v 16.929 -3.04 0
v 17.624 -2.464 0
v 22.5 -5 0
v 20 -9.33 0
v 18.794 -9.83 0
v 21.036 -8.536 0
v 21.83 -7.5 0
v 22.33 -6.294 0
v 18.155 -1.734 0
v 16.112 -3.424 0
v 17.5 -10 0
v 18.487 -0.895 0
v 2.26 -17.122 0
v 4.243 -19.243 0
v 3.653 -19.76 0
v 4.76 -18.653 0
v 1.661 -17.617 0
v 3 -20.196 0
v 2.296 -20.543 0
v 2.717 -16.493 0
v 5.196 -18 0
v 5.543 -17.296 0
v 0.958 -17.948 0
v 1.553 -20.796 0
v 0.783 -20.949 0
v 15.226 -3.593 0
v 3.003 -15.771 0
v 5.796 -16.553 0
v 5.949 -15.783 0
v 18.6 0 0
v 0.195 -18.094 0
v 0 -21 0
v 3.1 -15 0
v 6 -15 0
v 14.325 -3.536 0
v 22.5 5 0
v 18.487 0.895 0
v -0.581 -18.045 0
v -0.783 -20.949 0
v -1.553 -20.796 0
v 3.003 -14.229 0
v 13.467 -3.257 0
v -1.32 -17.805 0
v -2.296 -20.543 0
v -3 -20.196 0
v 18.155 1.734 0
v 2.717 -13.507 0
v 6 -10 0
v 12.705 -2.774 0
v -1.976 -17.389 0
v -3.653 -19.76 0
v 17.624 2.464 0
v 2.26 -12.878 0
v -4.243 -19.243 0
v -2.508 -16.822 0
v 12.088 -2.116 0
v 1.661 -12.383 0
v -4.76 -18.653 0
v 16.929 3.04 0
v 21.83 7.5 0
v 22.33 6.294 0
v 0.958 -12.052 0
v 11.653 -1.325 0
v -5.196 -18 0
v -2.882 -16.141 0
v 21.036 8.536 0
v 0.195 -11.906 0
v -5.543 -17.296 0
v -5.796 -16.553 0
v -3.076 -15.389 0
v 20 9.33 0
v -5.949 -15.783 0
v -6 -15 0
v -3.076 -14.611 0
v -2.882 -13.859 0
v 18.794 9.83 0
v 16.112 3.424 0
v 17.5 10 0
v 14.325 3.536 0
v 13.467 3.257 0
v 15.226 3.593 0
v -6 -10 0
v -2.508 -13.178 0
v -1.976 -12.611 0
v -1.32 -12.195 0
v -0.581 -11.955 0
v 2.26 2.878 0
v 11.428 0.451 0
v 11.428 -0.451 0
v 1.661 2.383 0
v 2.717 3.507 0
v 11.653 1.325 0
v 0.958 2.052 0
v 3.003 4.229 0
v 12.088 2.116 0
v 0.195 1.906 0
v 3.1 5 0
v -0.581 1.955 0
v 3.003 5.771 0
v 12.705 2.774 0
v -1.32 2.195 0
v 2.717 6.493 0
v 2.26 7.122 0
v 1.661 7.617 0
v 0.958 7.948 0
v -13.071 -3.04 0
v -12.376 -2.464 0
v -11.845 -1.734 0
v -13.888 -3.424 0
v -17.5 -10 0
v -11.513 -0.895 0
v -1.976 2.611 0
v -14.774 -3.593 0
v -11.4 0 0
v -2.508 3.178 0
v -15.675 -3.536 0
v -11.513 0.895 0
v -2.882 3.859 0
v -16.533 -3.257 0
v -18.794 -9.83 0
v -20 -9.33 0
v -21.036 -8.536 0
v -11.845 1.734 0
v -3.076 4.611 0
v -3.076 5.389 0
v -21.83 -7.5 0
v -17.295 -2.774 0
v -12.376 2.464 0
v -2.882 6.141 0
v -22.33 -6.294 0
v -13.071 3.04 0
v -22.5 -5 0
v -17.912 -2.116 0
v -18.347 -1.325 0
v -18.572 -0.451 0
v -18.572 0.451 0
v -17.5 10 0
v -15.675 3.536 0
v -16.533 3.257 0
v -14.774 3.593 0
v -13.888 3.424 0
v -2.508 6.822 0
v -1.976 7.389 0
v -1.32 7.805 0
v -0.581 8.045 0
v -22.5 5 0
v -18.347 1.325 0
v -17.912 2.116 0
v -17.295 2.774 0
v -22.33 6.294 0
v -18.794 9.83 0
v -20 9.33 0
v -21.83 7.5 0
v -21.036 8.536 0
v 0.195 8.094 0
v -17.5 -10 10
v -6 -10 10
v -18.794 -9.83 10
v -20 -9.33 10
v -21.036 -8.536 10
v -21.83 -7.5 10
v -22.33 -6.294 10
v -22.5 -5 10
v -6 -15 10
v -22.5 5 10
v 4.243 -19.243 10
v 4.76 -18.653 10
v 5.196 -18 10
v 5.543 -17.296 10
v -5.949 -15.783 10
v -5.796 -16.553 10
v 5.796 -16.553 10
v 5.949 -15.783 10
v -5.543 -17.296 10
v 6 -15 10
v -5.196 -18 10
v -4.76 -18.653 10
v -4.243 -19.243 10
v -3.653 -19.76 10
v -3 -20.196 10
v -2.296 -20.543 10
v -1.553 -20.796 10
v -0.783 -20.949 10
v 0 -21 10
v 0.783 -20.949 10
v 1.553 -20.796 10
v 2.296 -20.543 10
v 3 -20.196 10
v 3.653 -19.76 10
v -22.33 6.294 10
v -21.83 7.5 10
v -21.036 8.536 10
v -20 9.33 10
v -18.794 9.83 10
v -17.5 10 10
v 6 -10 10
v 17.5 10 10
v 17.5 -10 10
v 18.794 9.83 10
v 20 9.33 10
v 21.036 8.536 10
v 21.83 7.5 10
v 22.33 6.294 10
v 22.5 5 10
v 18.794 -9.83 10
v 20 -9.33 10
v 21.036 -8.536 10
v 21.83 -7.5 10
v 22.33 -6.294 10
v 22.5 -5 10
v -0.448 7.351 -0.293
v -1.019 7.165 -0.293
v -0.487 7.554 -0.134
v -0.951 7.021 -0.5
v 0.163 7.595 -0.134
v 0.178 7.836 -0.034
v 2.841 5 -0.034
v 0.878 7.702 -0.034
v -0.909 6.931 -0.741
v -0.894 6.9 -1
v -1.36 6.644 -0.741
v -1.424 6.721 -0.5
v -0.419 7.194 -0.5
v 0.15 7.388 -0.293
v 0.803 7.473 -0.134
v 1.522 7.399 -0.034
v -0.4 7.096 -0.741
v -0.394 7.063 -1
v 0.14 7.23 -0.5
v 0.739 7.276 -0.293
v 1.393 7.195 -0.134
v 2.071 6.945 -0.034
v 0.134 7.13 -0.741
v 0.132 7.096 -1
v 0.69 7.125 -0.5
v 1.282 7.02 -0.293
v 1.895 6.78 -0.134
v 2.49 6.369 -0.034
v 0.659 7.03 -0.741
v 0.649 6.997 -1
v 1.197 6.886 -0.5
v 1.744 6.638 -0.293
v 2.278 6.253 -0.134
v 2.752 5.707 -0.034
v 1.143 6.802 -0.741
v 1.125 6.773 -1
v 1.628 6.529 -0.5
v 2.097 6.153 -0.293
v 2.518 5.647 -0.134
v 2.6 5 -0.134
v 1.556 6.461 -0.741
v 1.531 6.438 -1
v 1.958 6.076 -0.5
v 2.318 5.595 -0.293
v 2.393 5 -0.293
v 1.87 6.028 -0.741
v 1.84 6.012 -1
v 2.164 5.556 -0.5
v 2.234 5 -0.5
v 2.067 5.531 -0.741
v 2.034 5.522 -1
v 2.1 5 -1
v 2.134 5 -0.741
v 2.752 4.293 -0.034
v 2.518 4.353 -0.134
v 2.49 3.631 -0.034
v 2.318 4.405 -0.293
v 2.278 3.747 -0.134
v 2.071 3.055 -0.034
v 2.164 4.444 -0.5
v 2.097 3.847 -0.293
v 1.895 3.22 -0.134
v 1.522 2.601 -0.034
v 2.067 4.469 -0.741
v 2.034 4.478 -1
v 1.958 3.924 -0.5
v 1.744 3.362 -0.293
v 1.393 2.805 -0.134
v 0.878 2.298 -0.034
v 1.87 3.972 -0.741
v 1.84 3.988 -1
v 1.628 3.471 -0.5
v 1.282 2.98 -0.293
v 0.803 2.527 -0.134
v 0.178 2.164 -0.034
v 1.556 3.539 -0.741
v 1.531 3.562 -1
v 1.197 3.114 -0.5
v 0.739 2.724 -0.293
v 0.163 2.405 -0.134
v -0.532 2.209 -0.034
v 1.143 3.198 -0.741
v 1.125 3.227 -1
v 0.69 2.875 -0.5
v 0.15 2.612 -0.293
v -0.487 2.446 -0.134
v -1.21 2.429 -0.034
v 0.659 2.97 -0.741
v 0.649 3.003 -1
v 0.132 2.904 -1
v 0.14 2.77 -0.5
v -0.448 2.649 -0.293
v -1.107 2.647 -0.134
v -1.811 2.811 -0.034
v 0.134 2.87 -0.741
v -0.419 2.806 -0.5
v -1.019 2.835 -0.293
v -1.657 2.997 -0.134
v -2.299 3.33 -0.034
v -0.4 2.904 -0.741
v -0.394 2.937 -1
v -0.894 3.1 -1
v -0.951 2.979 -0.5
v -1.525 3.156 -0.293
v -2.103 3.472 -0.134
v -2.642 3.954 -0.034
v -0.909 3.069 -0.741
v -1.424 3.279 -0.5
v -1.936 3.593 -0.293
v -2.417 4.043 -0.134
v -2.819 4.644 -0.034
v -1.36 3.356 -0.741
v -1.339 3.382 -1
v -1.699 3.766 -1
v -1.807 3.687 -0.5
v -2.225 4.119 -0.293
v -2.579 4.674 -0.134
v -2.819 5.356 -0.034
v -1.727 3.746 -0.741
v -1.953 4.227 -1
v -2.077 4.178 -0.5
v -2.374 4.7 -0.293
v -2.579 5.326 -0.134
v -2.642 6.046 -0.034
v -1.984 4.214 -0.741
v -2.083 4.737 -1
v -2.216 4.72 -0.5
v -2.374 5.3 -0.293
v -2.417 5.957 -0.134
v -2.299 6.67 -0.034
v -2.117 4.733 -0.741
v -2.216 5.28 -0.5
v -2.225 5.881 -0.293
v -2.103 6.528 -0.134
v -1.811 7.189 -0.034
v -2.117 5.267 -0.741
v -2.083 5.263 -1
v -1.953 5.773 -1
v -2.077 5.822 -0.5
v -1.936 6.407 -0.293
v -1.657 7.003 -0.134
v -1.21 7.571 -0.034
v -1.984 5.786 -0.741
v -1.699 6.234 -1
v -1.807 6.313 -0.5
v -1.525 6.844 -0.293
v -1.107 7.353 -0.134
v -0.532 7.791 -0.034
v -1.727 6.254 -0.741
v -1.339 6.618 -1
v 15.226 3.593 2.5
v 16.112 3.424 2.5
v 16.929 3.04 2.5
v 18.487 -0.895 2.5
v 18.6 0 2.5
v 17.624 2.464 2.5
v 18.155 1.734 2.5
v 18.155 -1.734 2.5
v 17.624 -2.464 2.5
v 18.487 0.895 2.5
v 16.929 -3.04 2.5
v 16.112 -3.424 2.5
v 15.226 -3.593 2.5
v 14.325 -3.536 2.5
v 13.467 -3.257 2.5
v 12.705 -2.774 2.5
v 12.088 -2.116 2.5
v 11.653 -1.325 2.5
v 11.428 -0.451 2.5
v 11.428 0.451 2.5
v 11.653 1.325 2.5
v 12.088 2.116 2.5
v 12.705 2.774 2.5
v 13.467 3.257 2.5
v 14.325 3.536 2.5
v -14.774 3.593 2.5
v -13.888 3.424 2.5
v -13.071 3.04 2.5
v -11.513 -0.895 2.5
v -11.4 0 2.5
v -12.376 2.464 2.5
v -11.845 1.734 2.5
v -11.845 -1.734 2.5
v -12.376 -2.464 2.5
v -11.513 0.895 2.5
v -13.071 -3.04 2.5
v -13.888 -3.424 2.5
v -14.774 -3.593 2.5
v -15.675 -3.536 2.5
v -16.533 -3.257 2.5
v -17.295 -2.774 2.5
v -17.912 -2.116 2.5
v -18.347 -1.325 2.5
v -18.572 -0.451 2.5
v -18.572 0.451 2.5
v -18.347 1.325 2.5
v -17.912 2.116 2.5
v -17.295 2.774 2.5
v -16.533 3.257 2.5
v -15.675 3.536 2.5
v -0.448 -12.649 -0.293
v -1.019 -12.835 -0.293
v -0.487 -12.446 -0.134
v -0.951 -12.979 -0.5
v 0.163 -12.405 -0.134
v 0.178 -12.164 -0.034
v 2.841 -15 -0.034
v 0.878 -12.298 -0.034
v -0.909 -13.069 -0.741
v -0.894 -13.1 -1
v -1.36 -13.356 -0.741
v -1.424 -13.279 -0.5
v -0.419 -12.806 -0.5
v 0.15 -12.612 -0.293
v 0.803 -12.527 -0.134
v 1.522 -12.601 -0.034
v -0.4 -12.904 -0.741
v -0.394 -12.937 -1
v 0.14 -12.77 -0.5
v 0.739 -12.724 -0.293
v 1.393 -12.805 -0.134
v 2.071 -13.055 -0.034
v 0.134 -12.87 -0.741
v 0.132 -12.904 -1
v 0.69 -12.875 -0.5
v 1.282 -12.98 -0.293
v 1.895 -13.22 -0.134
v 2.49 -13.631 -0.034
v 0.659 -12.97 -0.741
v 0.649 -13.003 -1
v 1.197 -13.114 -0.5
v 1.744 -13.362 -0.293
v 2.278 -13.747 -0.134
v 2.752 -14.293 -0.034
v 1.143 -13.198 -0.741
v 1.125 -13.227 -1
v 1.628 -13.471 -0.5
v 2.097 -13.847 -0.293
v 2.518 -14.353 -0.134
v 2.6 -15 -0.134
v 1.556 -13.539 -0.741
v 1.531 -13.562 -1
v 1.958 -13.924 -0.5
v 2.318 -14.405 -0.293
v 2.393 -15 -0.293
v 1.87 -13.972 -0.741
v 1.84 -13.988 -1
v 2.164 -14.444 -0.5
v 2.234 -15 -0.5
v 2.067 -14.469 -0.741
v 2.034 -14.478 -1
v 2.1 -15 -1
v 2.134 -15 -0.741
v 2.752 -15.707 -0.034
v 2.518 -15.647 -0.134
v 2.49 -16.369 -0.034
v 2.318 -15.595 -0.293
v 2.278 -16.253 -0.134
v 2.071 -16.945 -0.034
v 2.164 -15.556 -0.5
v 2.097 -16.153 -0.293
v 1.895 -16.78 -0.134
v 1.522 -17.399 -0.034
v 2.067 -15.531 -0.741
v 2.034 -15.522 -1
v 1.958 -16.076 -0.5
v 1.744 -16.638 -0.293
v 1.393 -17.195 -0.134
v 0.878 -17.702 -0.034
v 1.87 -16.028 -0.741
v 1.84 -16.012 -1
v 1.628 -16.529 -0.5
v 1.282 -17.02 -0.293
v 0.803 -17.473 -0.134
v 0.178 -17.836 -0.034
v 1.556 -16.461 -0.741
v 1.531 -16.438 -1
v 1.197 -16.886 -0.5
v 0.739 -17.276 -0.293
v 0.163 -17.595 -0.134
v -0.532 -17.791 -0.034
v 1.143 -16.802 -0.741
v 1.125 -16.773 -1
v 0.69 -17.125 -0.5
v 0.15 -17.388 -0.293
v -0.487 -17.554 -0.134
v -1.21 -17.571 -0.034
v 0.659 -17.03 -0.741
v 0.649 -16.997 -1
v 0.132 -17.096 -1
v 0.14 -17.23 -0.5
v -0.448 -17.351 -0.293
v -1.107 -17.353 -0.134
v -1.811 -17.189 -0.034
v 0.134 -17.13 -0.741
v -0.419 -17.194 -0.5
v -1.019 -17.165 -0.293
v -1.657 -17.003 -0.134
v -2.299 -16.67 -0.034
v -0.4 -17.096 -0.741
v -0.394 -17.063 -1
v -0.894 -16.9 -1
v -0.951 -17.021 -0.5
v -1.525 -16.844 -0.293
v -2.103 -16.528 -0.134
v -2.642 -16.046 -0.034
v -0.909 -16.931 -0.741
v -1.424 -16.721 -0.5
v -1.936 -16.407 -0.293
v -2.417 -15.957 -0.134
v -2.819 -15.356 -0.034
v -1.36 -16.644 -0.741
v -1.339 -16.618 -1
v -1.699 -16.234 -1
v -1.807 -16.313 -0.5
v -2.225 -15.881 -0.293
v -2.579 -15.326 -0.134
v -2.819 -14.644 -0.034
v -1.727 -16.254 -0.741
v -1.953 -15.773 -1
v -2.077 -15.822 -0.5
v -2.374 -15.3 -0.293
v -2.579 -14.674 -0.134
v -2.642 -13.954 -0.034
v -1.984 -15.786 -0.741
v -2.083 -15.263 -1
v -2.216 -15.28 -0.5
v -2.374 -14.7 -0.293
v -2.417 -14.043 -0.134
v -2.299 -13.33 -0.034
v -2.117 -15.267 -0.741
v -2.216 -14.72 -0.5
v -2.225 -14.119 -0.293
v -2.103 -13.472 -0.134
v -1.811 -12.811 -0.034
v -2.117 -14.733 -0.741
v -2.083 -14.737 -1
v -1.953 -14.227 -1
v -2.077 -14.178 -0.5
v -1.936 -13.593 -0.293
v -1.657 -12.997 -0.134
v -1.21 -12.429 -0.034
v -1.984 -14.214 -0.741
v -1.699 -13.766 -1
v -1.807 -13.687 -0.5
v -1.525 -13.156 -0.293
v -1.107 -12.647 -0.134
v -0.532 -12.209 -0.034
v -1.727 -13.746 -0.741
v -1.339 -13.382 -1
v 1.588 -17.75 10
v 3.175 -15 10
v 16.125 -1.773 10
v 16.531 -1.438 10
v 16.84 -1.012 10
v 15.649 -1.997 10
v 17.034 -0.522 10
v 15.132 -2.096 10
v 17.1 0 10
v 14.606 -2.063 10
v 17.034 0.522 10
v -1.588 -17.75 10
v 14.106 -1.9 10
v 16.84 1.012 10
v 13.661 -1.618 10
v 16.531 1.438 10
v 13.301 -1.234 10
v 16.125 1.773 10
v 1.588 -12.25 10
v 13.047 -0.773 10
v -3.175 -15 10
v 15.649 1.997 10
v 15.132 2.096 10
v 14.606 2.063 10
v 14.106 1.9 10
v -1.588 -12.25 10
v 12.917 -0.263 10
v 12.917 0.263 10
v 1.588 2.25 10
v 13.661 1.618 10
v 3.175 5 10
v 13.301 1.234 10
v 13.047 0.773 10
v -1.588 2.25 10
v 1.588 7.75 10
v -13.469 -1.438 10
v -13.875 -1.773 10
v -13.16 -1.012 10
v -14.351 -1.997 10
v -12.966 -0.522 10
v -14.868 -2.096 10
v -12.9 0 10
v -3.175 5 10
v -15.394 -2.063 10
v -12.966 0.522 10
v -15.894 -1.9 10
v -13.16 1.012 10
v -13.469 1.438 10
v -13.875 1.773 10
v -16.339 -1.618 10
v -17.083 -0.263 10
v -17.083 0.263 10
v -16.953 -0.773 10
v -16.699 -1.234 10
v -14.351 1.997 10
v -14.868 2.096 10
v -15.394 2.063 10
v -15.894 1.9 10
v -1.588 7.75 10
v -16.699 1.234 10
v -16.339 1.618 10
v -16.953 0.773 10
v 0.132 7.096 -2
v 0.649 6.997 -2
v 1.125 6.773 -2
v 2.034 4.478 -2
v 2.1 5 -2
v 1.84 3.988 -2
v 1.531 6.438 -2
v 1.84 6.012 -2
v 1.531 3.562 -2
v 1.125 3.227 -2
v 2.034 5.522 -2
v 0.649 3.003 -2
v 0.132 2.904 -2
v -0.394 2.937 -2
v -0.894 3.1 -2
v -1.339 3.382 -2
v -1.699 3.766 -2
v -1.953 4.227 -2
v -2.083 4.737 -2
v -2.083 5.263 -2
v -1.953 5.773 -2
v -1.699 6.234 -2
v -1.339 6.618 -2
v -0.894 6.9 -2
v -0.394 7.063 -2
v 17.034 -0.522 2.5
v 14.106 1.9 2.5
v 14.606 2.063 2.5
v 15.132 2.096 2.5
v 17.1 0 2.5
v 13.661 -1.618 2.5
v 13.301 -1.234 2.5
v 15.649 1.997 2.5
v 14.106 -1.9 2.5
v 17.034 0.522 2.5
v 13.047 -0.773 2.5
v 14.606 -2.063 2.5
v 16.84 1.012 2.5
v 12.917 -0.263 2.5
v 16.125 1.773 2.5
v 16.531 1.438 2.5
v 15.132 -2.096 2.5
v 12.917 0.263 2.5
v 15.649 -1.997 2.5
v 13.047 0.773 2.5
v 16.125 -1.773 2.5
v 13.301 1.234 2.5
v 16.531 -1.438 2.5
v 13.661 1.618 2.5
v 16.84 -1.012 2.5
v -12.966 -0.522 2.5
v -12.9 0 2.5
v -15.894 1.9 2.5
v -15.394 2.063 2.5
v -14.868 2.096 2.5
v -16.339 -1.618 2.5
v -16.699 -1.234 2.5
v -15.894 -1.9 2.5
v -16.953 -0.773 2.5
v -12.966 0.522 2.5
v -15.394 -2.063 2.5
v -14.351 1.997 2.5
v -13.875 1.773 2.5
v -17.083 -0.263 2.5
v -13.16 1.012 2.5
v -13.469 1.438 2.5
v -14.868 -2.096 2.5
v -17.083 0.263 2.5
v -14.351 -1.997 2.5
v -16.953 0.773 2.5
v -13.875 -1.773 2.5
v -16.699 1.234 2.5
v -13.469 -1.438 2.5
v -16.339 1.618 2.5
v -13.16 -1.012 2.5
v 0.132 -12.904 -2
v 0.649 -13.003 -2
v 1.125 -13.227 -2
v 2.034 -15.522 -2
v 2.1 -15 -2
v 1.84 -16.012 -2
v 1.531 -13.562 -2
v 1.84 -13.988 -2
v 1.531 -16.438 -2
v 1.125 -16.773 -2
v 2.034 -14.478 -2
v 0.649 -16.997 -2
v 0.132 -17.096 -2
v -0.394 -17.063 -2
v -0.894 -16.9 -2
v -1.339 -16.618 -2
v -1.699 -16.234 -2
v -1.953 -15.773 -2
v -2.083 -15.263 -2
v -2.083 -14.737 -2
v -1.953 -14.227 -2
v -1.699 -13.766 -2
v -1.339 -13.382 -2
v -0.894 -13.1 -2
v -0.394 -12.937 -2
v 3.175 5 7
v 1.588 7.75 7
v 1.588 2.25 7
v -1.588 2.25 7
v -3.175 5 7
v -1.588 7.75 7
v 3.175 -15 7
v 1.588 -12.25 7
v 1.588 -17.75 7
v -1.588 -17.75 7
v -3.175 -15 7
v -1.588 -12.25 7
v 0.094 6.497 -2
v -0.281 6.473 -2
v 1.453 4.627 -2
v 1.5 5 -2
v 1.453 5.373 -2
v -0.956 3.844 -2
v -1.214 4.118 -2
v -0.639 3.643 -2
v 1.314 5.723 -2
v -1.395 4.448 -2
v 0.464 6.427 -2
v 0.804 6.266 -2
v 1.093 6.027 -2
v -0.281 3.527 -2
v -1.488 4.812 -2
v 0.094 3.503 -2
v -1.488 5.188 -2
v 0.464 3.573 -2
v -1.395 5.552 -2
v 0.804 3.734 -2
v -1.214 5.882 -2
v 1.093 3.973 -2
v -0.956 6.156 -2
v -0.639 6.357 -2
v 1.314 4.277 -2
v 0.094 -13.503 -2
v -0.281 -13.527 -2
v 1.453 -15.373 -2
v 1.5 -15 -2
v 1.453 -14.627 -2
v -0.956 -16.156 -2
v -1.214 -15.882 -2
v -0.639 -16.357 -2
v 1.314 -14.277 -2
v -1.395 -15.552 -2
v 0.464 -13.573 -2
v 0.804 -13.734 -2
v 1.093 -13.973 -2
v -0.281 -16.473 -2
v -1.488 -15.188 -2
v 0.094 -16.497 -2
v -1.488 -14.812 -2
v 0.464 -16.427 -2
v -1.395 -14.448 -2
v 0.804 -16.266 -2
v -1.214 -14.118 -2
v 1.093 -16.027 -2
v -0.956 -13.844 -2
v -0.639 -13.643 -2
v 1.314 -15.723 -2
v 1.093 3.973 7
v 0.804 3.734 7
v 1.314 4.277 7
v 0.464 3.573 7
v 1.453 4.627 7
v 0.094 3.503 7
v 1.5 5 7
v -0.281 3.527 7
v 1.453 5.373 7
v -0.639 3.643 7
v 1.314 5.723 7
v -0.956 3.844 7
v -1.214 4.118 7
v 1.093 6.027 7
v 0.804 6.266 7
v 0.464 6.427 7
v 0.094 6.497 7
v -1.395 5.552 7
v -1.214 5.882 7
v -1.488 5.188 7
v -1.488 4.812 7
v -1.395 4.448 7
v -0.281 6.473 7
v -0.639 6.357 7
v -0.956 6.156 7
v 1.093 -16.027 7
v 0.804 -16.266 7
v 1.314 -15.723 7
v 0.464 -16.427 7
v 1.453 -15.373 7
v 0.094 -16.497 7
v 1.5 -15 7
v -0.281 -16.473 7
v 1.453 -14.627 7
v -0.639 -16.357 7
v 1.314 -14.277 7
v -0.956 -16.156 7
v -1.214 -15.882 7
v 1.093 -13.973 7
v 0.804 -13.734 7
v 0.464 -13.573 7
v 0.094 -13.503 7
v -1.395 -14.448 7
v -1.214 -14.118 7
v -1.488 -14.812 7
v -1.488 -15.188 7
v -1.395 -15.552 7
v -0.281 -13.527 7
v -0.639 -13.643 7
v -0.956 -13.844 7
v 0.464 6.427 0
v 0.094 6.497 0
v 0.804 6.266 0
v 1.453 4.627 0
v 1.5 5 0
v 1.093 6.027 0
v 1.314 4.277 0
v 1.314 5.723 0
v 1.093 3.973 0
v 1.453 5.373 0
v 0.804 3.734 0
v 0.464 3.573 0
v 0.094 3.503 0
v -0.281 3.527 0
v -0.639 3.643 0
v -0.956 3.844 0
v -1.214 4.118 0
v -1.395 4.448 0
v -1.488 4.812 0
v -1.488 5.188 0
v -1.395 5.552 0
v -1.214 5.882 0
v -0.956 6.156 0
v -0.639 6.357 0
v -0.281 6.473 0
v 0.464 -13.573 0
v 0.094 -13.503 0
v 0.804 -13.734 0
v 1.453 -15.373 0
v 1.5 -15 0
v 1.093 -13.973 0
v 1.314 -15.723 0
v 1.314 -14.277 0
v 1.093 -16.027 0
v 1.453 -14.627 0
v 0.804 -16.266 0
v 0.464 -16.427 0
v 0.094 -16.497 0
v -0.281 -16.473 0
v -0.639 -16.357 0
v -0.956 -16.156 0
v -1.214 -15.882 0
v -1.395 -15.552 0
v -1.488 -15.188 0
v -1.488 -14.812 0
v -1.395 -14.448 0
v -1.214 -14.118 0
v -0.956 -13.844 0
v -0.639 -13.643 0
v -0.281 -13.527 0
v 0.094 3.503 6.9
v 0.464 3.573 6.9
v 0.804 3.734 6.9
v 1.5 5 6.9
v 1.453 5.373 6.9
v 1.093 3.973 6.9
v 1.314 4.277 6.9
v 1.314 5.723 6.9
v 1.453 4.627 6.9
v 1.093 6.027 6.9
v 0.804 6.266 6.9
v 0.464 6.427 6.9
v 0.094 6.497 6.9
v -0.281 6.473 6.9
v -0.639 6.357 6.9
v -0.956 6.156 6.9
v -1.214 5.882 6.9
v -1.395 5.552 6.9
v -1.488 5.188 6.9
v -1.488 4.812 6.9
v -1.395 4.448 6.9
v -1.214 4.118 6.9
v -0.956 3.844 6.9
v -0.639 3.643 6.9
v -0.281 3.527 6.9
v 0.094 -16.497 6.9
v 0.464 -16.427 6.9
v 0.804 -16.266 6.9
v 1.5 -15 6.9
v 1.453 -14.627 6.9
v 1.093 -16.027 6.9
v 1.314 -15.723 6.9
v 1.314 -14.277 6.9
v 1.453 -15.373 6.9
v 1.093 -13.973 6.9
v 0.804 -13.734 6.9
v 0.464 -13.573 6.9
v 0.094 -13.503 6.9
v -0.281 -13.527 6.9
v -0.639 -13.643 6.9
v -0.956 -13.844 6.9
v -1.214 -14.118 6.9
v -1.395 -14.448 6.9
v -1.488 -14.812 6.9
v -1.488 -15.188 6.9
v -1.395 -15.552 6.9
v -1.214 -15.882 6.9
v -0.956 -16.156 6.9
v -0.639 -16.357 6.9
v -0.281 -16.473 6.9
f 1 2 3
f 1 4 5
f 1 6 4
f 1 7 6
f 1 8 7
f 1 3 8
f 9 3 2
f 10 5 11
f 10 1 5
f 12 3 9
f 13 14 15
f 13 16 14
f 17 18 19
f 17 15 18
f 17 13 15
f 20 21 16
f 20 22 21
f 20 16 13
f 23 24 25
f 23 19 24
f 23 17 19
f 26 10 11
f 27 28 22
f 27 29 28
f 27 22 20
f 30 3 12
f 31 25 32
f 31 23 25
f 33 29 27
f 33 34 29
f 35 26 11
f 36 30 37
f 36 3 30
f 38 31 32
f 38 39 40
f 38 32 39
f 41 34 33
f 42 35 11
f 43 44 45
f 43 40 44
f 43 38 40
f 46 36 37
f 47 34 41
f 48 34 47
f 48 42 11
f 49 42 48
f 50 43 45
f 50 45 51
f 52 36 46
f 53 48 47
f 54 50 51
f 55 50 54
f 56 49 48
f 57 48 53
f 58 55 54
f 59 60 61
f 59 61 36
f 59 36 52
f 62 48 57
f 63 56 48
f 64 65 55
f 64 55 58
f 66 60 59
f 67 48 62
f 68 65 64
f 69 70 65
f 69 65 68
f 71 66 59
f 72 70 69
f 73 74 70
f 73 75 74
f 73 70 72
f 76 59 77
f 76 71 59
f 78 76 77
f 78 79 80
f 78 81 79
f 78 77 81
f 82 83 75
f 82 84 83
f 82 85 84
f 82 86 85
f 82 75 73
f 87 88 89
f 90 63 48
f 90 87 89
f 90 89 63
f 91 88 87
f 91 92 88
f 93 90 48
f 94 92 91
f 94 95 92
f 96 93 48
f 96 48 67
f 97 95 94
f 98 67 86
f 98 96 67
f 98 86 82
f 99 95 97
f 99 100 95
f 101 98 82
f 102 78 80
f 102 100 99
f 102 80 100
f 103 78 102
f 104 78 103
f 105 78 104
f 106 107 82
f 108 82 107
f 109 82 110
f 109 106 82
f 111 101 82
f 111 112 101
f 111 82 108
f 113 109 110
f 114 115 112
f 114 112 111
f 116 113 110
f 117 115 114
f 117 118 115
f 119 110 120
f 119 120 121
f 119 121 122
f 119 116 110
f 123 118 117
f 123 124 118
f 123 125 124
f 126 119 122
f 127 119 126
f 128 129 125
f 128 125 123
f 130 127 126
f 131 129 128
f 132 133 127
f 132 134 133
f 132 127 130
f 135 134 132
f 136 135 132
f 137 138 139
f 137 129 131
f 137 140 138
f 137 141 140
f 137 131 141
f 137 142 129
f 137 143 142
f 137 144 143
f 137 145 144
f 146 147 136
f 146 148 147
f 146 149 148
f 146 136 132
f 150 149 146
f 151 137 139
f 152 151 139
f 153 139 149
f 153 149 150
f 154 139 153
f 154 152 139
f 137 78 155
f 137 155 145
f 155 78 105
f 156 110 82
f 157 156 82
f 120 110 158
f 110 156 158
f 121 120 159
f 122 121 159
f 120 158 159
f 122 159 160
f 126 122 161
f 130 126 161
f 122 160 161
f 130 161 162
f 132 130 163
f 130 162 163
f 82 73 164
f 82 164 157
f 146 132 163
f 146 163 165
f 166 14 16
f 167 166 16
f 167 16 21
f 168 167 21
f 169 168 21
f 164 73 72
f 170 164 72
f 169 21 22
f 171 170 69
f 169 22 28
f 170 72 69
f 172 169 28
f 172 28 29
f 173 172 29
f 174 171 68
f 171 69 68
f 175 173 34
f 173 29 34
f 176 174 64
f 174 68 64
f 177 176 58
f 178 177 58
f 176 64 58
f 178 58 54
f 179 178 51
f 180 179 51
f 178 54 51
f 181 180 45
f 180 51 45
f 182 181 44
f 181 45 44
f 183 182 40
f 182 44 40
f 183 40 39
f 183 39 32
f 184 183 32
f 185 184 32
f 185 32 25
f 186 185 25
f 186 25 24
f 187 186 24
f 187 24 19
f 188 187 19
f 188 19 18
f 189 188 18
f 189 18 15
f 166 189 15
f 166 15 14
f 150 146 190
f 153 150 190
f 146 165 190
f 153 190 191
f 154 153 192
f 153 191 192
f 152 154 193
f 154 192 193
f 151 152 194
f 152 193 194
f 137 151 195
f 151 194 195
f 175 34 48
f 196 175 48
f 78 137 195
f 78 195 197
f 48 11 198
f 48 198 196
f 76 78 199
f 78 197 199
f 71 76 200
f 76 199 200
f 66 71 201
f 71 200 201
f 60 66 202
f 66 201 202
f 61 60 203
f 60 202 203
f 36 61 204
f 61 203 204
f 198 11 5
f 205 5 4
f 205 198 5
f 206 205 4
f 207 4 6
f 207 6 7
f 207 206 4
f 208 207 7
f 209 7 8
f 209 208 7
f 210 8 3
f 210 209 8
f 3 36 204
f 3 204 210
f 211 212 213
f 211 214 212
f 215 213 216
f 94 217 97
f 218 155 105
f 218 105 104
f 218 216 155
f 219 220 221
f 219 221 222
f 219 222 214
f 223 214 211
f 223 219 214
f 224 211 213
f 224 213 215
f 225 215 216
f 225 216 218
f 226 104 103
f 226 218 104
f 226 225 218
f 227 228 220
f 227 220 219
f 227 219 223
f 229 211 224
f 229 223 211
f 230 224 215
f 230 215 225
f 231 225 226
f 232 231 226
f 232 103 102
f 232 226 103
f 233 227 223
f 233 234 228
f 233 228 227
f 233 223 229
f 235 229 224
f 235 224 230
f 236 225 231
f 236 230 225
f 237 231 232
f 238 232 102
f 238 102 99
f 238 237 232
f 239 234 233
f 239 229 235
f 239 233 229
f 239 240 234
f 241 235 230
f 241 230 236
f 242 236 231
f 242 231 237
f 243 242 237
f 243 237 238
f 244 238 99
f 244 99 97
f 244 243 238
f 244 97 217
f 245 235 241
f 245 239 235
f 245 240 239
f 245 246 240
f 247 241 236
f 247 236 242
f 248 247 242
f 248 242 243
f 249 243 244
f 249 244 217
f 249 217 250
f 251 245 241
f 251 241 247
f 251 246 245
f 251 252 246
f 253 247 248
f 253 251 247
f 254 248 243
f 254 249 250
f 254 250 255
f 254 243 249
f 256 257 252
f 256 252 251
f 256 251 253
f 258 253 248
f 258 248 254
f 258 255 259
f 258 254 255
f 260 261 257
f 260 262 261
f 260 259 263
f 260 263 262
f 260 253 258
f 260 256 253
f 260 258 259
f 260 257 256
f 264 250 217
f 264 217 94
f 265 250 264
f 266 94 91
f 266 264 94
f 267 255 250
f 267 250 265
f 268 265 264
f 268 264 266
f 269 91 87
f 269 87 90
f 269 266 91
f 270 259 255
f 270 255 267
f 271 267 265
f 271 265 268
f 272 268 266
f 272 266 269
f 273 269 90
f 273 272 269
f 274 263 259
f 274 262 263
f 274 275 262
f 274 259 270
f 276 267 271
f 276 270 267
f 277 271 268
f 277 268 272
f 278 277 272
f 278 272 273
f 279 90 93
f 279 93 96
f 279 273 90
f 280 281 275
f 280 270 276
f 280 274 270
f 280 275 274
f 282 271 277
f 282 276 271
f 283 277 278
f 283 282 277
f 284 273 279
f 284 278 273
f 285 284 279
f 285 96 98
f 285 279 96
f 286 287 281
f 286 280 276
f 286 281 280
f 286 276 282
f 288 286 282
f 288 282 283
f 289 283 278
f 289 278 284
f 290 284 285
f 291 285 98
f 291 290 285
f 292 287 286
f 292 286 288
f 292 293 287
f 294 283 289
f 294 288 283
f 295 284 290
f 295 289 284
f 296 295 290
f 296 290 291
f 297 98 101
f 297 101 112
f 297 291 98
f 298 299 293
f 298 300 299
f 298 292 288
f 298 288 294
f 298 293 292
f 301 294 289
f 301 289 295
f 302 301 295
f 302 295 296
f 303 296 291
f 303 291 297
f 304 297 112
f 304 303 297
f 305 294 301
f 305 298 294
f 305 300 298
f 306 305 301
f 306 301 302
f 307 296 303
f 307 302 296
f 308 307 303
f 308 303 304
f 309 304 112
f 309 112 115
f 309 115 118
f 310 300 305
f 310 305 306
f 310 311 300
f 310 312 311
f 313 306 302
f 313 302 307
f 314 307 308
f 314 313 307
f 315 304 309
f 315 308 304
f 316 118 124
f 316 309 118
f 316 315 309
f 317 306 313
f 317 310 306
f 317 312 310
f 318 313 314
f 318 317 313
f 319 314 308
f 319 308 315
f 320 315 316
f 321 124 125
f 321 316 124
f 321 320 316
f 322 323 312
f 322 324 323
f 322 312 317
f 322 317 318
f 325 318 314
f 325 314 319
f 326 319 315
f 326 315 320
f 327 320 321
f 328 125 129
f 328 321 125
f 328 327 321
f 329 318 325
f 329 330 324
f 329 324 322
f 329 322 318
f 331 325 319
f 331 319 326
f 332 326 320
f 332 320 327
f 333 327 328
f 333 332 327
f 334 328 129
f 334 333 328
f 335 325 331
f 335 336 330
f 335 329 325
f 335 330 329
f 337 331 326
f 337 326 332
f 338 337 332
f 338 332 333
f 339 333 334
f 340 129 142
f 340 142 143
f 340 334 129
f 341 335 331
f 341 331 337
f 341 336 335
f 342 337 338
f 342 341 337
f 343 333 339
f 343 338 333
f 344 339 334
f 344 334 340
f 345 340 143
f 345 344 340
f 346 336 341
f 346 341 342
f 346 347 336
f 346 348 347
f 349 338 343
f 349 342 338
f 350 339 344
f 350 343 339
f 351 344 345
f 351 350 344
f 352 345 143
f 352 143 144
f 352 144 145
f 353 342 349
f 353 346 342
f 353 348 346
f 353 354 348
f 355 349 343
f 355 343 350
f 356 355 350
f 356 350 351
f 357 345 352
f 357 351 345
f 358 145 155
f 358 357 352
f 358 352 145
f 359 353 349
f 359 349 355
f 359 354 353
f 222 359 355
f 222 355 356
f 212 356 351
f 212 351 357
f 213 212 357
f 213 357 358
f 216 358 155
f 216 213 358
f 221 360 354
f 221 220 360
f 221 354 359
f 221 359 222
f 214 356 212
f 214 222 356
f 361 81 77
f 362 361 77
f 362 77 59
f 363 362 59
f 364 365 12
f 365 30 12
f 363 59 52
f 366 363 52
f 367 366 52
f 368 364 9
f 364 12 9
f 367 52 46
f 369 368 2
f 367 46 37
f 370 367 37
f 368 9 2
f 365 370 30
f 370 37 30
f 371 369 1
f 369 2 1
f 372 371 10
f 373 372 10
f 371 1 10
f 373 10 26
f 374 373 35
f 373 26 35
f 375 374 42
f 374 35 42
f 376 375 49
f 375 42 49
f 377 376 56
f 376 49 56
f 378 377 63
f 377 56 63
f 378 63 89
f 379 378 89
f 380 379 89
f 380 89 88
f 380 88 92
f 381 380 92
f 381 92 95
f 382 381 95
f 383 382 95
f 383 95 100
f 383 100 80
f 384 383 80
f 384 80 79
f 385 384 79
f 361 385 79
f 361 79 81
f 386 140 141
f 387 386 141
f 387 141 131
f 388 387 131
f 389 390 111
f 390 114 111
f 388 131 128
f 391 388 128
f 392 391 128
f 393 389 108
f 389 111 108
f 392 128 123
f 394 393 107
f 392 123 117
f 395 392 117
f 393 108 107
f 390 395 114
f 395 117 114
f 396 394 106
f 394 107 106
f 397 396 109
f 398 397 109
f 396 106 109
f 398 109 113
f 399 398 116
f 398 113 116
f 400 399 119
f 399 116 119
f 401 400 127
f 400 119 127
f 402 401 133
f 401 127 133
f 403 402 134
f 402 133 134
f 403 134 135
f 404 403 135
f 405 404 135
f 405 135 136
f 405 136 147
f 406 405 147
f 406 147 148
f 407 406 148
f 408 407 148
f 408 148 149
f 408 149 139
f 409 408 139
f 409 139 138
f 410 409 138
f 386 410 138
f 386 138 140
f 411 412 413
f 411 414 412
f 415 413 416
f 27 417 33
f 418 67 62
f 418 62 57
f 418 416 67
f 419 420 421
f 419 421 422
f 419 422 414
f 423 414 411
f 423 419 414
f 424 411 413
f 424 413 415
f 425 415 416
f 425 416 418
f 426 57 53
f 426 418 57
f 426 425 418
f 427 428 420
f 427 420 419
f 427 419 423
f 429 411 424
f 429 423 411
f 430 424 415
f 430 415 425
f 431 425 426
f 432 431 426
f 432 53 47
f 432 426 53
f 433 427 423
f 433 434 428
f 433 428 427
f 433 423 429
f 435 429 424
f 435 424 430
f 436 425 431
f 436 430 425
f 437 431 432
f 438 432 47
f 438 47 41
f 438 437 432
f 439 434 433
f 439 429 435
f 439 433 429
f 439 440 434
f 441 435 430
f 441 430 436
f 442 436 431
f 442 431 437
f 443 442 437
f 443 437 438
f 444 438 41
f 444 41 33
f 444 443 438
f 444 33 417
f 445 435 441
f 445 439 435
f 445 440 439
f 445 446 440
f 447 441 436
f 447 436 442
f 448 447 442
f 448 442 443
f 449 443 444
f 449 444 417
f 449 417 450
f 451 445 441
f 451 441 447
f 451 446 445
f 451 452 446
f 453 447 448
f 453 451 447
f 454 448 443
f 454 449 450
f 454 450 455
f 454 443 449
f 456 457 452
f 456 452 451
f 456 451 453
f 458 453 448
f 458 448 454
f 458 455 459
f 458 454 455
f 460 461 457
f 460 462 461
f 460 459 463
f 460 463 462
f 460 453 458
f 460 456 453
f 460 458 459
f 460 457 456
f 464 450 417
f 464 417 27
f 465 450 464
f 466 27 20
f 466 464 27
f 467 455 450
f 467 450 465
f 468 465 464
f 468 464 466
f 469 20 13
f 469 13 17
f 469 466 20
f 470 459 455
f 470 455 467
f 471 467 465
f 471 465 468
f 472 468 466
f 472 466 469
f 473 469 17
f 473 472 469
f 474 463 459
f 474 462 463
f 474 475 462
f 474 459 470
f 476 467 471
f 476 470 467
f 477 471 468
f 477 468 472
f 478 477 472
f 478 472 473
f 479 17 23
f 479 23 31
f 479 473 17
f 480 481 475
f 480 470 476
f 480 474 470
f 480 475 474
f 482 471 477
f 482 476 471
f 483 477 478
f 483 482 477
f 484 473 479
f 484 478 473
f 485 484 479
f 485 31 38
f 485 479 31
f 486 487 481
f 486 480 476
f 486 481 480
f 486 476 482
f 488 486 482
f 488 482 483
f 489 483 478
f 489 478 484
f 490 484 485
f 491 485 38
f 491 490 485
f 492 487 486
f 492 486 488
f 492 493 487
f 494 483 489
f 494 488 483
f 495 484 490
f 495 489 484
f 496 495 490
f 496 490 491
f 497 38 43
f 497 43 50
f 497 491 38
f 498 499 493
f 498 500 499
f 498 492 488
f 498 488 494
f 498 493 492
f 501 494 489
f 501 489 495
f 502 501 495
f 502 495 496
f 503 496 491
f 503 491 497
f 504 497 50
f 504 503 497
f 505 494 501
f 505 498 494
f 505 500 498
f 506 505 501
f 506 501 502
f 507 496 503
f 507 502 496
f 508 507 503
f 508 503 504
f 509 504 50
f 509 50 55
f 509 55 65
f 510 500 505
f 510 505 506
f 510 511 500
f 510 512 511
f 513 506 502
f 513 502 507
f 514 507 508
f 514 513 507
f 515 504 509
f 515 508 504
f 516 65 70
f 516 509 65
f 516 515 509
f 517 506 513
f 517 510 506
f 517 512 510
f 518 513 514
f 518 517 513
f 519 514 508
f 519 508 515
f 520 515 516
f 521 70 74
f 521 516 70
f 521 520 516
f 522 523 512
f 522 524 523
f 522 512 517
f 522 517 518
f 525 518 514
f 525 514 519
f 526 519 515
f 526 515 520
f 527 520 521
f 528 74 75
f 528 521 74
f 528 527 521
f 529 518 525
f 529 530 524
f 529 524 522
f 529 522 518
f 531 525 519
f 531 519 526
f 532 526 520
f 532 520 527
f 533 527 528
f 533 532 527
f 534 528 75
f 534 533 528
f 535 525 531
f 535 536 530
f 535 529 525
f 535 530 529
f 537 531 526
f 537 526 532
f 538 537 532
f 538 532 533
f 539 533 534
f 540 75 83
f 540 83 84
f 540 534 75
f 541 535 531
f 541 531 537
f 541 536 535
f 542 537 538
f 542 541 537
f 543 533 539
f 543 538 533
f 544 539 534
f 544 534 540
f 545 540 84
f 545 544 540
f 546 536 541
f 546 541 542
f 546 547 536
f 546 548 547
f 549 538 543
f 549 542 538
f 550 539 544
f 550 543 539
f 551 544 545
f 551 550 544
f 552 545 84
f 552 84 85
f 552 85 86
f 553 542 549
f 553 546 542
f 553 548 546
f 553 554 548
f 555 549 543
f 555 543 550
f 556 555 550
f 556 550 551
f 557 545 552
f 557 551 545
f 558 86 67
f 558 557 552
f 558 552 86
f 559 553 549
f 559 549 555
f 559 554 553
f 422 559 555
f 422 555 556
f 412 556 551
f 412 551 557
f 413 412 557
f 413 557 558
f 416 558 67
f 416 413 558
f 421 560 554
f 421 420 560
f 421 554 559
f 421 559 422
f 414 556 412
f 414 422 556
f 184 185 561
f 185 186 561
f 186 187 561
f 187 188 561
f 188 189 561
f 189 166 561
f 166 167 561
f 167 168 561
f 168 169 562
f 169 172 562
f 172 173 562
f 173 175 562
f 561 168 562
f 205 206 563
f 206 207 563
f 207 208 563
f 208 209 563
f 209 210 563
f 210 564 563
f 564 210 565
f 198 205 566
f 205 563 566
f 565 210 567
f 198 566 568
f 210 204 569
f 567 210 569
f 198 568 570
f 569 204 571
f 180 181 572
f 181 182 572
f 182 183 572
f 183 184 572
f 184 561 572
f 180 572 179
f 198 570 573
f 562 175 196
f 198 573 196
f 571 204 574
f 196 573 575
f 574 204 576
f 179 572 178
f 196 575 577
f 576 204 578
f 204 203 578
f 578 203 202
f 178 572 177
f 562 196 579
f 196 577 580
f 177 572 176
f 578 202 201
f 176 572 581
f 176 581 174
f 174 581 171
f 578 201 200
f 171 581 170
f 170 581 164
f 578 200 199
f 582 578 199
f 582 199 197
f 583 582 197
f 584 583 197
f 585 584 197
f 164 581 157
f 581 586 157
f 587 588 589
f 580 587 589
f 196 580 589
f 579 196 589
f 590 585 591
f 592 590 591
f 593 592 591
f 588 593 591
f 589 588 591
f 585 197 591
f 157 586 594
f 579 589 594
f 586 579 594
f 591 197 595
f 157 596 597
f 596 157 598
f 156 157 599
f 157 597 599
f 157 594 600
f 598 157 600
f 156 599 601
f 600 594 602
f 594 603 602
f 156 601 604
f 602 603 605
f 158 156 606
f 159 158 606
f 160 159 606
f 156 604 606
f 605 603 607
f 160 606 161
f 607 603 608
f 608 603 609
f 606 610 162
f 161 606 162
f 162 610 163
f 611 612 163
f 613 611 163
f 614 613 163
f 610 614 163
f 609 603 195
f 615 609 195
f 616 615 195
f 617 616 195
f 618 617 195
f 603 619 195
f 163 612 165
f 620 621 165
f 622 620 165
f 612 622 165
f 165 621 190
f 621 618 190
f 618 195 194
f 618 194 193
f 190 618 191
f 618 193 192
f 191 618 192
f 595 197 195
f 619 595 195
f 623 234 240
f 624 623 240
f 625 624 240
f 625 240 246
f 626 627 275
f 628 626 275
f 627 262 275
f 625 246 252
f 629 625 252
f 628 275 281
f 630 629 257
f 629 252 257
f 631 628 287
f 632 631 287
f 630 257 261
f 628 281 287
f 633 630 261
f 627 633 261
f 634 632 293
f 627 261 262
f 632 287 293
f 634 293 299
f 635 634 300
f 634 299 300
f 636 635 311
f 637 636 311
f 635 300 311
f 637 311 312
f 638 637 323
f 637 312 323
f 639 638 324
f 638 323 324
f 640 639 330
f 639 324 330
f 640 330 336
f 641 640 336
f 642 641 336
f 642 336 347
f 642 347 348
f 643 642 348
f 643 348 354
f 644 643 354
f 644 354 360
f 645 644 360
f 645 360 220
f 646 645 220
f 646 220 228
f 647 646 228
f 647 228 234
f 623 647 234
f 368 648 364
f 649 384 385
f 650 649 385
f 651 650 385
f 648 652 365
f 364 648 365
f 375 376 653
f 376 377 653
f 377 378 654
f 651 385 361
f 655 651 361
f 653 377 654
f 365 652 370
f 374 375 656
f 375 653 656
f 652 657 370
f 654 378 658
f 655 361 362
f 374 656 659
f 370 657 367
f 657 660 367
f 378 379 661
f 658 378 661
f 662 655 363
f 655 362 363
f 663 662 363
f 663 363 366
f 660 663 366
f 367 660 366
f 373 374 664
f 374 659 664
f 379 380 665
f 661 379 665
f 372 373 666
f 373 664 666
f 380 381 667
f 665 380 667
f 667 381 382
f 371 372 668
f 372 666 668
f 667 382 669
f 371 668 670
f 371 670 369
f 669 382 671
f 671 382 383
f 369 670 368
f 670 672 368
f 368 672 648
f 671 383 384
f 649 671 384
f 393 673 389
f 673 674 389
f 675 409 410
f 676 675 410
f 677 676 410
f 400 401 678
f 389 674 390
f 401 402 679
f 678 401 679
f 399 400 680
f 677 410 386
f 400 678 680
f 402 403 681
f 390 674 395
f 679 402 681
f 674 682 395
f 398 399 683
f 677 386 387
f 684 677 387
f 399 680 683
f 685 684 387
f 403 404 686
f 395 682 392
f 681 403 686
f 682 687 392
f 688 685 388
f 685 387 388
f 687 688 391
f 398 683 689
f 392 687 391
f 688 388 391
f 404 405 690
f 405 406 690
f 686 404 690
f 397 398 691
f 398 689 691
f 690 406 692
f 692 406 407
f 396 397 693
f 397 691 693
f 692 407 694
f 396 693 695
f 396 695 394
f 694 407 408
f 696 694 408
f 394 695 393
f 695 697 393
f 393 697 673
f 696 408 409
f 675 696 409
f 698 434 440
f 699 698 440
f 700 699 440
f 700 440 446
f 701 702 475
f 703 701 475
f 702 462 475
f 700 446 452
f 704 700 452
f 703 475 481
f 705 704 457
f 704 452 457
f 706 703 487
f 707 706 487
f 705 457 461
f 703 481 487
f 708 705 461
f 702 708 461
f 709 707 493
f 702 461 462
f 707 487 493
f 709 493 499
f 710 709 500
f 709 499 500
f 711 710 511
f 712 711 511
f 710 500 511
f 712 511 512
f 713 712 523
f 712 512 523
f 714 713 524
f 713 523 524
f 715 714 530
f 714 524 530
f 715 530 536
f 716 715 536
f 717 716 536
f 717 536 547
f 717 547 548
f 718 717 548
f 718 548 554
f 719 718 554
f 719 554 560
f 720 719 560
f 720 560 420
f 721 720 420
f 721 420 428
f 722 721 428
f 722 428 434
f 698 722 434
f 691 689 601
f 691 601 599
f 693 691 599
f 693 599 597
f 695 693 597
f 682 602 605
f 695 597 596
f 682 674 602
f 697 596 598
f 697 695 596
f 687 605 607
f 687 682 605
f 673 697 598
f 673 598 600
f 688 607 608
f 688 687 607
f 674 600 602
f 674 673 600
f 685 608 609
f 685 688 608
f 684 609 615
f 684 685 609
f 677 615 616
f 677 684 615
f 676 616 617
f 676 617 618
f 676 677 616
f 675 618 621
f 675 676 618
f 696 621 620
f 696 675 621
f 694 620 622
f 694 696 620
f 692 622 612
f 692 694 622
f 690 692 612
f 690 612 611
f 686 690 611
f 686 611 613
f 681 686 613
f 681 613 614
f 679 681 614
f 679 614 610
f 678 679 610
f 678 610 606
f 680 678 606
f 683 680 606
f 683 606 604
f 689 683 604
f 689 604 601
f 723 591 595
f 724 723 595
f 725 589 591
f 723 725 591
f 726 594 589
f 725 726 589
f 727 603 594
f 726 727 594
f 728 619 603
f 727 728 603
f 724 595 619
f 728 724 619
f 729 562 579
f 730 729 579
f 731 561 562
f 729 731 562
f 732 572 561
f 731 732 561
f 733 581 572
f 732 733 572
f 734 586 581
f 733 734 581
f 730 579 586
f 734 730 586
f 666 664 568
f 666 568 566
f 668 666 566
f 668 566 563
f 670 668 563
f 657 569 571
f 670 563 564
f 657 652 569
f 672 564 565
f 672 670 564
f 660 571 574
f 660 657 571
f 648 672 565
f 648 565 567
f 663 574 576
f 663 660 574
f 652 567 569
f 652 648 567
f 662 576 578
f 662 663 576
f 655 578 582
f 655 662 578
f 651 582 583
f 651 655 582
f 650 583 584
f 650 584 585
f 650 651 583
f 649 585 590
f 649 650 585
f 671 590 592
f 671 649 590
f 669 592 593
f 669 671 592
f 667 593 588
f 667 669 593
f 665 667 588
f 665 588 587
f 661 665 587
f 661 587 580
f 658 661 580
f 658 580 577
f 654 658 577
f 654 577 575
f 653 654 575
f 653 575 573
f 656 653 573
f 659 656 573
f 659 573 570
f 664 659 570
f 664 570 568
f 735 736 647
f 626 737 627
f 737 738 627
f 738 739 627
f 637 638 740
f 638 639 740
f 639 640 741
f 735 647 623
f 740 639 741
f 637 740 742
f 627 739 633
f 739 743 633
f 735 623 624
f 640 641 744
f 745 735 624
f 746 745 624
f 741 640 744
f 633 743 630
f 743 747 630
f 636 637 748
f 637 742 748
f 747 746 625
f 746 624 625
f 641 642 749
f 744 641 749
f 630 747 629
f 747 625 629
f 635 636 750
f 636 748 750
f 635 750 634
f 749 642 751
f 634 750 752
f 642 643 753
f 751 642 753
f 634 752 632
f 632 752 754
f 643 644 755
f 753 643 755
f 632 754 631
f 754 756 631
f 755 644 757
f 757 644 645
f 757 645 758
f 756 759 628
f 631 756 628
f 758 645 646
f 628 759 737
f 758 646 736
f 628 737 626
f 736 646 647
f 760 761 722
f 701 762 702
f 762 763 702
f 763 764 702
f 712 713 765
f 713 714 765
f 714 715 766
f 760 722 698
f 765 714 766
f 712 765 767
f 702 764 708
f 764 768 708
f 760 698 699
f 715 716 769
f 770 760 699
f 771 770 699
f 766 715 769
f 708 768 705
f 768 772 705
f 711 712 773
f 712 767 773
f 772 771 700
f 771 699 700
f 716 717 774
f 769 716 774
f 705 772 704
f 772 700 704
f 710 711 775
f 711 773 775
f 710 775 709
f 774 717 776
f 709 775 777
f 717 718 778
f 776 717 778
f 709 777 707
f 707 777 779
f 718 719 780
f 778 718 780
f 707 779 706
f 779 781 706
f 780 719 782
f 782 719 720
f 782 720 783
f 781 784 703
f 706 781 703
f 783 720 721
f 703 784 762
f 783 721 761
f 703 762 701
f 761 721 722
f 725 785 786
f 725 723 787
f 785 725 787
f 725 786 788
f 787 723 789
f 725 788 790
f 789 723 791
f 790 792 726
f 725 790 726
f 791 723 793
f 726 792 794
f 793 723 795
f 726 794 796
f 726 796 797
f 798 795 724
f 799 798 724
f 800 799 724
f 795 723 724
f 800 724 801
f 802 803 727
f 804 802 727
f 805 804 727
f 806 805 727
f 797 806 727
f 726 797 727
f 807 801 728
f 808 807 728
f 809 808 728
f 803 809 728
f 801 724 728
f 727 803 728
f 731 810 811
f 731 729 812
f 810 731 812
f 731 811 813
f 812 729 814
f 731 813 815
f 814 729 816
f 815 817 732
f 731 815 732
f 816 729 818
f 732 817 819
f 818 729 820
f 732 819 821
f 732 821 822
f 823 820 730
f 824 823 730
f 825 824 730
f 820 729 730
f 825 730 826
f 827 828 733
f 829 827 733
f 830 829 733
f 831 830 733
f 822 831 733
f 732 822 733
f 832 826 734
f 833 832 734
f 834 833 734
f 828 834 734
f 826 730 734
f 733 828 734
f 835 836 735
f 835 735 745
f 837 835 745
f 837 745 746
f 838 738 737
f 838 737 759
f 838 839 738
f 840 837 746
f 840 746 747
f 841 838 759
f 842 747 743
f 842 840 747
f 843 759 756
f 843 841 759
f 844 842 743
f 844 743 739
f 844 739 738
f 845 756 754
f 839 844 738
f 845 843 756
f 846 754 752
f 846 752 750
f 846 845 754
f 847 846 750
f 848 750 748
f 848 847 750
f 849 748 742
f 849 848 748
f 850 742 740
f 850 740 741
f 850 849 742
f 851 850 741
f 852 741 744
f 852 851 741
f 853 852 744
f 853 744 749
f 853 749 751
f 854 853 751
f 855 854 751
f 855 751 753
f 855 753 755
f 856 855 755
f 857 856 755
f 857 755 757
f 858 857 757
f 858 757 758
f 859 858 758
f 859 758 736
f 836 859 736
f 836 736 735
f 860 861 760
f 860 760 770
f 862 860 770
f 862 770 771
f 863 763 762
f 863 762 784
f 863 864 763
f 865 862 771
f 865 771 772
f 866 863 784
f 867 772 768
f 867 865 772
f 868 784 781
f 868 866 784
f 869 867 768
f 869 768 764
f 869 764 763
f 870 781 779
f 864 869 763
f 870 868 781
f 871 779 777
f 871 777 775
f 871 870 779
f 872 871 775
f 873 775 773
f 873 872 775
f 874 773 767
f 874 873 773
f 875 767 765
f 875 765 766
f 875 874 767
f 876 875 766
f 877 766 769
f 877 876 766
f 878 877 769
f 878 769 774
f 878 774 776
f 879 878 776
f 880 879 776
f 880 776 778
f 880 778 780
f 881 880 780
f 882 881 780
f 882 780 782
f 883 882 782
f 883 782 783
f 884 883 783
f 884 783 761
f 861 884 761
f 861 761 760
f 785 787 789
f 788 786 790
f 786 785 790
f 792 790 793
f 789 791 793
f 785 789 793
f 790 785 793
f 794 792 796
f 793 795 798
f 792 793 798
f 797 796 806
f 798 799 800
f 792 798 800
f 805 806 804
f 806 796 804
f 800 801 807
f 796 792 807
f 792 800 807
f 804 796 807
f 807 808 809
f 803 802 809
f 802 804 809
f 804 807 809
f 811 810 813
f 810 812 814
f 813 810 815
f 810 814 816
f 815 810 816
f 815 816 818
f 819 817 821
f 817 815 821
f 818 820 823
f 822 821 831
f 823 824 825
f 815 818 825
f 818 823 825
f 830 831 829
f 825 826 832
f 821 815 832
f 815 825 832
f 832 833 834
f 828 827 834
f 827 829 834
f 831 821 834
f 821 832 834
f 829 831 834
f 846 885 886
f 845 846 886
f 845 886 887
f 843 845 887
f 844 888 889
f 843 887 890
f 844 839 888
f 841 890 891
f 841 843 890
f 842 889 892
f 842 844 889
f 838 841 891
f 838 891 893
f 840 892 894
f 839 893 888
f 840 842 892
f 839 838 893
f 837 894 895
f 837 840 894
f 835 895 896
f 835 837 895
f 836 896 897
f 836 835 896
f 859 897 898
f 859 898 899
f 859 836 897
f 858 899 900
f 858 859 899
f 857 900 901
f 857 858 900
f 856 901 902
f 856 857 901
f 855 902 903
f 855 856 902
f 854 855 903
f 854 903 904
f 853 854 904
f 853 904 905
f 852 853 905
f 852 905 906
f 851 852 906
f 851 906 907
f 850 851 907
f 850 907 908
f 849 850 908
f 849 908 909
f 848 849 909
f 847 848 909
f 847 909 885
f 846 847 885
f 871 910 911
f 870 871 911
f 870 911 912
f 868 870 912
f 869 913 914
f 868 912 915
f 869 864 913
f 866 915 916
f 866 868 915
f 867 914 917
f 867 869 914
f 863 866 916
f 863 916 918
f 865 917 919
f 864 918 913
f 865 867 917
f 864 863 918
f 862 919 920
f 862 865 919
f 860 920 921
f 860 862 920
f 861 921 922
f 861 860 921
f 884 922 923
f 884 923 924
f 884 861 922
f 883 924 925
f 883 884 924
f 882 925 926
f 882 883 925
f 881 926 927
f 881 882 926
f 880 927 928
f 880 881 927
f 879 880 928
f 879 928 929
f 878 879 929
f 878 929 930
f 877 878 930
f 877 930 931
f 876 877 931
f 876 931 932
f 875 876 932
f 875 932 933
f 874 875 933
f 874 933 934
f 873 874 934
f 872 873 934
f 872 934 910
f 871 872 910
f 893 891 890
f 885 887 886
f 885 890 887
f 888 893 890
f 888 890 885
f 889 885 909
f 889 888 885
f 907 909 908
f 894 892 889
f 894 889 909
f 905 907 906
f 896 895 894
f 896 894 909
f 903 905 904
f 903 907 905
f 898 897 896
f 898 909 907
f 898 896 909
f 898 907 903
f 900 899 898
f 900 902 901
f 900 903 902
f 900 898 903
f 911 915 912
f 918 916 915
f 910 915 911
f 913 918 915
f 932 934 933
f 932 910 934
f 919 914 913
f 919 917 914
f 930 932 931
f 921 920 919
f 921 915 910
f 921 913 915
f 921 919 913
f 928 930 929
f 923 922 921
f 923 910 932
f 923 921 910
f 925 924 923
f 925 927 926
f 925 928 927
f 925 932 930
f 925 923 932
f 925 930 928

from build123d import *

# Parameters (mm, degrees)
SKETCH_R        = 2.1
SKETCH_R_2      = 1.5
PAD_DEPTH       = 10
POCKET_DEPTH    = 3
SKETCH002_R     = 2.1
SKETCH002_R_2   = 1.5
PAD001_DEPTH    = 2
SKETCH003_R     = 3.6
SKETCH003_R_2   = 2.1
POCKET001_DEPTH = 2.5
FILLET_R        = 1
FILLET001_R     = 5
SKETCH004_R     = 1.5
PAD002_DEPTH    = 0.1


with BuildPart() as part:
    # Sketch → Pad (new body)
    with BuildSketch(Plane.XY):
        with BuildLine():
            Line((-22.5, 10), (22.5, 10))
            Line((22.5, 10), (22.5, -10))
            Line((22.5, -10), (6, -10))
            Line((6, -15), (6, -10))
            ThreePointArc((-6, -15), (0, -21), (6, -15))
            Line((-6, -15), (-6, -10))
            Line((-22.5, -10), (-6, -10))
            Line((-22.5, -10), (-22.5, 10))
        make_face()
        with Locations((-15, 0)):
            Circle(SKETCH_R, mode=Mode.SUBTRACT)
        with Locations((15, 0)):
            Circle(SKETCH_R, mode=Mode.SUBTRACT)
        with Locations((0, 5)):
            Circle(SKETCH_R_2, mode=Mode.SUBTRACT)
        with Locations((0, -15)):
            Circle(SKETCH_R_2, mode=Mode.SUBTRACT)
    extrude(amount=PAD_DEPTH)

    # Sketch001 → Pocket (cut)
    with BuildSketch(Plane.XY.offset(10)):
        Polygon((1.587713, 2.25), (3.175426, 5), (1.587713, 7.75), (-1.587713, 7.75), (-3.175426, 5), (-1.587713, 2.25), align=None)
        Polygon((1.587713, -17.75), (3.175426, -15), (1.587713, -12.25), (-1.587713, -12.25), (-3.175426, -15), (-1.587713, -17.75), align=None)
    extrude(amount=-POCKET_DEPTH, mode=Mode.SUBTRACT)

    # Sketch002 → Pad001 (new body)
    with BuildSketch(Plane(origin=(0, 0, 0), x_dir=(1, 0, 0), z_dir=(0, 0, -1))):
        with Locations((0, -5)):
            Circle(SKETCH002_R)
        with Locations((0, -5)):
            Circle(SKETCH002_R_2, mode=Mode.SUBTRACT)
        with Locations((0, 15)):
            Circle(SKETCH002_R)
        with Locations((0, 15)):
            Circle(SKETCH002_R_2, mode=Mode.SUBTRACT)
    extrude(amount=PAD001_DEPTH)

    # Sketch003 → Pocket001 (cut)
    with BuildSketch(Plane(origin=(0, 0, 0), x_dir=(1, 0, 0), z_dir=(0, 0, -1))):
        with Locations((15, 0)):
            Circle(SKETCH003_R)
        with Locations((15, 0)):
            Circle(SKETCH003_R_2, mode=Mode.SUBTRACT)
        with Locations((-15, 0)):
            Circle(SKETCH003_R)
        with Locations((-15, 0)):
            Circle(SKETCH003_R_2, mode=Mode.SUBTRACT)
    extrude(amount=-POCKET001_DEPTH, mode=Mode.SUBTRACT)

    # Fillet
    fillet_edges = [part.edges().sort_by_distance(p)[0] for p in [
        (-2.1, 5, 0),
        (-2.1, -15, 0),
    ]]
    fillet(fillet_edges, radius=FILLET_R)

    # Fillet001
    fillet001_edges = [part.edges().sort_by_distance(p)[0] for p in [
        (22.5, 10, 5),
        (22.5, -10, 5),
        (-22.5, 10, 5),
        (-22.5, -10, 5),
    ]]
    fillet(fillet001_edges, radius=FILLET001_R)

    # Sketch004 → Pad002 (new body)
    with BuildSketch(Plane.XY.offset(7)):
        with Locations((0, 5)):
            Circle(SKETCH004_R)
        with Locations((0, -15)):
            Circle(SKETCH004_R)
    extrude(amount=-PAD002_DEPTH)


solid = part.part
